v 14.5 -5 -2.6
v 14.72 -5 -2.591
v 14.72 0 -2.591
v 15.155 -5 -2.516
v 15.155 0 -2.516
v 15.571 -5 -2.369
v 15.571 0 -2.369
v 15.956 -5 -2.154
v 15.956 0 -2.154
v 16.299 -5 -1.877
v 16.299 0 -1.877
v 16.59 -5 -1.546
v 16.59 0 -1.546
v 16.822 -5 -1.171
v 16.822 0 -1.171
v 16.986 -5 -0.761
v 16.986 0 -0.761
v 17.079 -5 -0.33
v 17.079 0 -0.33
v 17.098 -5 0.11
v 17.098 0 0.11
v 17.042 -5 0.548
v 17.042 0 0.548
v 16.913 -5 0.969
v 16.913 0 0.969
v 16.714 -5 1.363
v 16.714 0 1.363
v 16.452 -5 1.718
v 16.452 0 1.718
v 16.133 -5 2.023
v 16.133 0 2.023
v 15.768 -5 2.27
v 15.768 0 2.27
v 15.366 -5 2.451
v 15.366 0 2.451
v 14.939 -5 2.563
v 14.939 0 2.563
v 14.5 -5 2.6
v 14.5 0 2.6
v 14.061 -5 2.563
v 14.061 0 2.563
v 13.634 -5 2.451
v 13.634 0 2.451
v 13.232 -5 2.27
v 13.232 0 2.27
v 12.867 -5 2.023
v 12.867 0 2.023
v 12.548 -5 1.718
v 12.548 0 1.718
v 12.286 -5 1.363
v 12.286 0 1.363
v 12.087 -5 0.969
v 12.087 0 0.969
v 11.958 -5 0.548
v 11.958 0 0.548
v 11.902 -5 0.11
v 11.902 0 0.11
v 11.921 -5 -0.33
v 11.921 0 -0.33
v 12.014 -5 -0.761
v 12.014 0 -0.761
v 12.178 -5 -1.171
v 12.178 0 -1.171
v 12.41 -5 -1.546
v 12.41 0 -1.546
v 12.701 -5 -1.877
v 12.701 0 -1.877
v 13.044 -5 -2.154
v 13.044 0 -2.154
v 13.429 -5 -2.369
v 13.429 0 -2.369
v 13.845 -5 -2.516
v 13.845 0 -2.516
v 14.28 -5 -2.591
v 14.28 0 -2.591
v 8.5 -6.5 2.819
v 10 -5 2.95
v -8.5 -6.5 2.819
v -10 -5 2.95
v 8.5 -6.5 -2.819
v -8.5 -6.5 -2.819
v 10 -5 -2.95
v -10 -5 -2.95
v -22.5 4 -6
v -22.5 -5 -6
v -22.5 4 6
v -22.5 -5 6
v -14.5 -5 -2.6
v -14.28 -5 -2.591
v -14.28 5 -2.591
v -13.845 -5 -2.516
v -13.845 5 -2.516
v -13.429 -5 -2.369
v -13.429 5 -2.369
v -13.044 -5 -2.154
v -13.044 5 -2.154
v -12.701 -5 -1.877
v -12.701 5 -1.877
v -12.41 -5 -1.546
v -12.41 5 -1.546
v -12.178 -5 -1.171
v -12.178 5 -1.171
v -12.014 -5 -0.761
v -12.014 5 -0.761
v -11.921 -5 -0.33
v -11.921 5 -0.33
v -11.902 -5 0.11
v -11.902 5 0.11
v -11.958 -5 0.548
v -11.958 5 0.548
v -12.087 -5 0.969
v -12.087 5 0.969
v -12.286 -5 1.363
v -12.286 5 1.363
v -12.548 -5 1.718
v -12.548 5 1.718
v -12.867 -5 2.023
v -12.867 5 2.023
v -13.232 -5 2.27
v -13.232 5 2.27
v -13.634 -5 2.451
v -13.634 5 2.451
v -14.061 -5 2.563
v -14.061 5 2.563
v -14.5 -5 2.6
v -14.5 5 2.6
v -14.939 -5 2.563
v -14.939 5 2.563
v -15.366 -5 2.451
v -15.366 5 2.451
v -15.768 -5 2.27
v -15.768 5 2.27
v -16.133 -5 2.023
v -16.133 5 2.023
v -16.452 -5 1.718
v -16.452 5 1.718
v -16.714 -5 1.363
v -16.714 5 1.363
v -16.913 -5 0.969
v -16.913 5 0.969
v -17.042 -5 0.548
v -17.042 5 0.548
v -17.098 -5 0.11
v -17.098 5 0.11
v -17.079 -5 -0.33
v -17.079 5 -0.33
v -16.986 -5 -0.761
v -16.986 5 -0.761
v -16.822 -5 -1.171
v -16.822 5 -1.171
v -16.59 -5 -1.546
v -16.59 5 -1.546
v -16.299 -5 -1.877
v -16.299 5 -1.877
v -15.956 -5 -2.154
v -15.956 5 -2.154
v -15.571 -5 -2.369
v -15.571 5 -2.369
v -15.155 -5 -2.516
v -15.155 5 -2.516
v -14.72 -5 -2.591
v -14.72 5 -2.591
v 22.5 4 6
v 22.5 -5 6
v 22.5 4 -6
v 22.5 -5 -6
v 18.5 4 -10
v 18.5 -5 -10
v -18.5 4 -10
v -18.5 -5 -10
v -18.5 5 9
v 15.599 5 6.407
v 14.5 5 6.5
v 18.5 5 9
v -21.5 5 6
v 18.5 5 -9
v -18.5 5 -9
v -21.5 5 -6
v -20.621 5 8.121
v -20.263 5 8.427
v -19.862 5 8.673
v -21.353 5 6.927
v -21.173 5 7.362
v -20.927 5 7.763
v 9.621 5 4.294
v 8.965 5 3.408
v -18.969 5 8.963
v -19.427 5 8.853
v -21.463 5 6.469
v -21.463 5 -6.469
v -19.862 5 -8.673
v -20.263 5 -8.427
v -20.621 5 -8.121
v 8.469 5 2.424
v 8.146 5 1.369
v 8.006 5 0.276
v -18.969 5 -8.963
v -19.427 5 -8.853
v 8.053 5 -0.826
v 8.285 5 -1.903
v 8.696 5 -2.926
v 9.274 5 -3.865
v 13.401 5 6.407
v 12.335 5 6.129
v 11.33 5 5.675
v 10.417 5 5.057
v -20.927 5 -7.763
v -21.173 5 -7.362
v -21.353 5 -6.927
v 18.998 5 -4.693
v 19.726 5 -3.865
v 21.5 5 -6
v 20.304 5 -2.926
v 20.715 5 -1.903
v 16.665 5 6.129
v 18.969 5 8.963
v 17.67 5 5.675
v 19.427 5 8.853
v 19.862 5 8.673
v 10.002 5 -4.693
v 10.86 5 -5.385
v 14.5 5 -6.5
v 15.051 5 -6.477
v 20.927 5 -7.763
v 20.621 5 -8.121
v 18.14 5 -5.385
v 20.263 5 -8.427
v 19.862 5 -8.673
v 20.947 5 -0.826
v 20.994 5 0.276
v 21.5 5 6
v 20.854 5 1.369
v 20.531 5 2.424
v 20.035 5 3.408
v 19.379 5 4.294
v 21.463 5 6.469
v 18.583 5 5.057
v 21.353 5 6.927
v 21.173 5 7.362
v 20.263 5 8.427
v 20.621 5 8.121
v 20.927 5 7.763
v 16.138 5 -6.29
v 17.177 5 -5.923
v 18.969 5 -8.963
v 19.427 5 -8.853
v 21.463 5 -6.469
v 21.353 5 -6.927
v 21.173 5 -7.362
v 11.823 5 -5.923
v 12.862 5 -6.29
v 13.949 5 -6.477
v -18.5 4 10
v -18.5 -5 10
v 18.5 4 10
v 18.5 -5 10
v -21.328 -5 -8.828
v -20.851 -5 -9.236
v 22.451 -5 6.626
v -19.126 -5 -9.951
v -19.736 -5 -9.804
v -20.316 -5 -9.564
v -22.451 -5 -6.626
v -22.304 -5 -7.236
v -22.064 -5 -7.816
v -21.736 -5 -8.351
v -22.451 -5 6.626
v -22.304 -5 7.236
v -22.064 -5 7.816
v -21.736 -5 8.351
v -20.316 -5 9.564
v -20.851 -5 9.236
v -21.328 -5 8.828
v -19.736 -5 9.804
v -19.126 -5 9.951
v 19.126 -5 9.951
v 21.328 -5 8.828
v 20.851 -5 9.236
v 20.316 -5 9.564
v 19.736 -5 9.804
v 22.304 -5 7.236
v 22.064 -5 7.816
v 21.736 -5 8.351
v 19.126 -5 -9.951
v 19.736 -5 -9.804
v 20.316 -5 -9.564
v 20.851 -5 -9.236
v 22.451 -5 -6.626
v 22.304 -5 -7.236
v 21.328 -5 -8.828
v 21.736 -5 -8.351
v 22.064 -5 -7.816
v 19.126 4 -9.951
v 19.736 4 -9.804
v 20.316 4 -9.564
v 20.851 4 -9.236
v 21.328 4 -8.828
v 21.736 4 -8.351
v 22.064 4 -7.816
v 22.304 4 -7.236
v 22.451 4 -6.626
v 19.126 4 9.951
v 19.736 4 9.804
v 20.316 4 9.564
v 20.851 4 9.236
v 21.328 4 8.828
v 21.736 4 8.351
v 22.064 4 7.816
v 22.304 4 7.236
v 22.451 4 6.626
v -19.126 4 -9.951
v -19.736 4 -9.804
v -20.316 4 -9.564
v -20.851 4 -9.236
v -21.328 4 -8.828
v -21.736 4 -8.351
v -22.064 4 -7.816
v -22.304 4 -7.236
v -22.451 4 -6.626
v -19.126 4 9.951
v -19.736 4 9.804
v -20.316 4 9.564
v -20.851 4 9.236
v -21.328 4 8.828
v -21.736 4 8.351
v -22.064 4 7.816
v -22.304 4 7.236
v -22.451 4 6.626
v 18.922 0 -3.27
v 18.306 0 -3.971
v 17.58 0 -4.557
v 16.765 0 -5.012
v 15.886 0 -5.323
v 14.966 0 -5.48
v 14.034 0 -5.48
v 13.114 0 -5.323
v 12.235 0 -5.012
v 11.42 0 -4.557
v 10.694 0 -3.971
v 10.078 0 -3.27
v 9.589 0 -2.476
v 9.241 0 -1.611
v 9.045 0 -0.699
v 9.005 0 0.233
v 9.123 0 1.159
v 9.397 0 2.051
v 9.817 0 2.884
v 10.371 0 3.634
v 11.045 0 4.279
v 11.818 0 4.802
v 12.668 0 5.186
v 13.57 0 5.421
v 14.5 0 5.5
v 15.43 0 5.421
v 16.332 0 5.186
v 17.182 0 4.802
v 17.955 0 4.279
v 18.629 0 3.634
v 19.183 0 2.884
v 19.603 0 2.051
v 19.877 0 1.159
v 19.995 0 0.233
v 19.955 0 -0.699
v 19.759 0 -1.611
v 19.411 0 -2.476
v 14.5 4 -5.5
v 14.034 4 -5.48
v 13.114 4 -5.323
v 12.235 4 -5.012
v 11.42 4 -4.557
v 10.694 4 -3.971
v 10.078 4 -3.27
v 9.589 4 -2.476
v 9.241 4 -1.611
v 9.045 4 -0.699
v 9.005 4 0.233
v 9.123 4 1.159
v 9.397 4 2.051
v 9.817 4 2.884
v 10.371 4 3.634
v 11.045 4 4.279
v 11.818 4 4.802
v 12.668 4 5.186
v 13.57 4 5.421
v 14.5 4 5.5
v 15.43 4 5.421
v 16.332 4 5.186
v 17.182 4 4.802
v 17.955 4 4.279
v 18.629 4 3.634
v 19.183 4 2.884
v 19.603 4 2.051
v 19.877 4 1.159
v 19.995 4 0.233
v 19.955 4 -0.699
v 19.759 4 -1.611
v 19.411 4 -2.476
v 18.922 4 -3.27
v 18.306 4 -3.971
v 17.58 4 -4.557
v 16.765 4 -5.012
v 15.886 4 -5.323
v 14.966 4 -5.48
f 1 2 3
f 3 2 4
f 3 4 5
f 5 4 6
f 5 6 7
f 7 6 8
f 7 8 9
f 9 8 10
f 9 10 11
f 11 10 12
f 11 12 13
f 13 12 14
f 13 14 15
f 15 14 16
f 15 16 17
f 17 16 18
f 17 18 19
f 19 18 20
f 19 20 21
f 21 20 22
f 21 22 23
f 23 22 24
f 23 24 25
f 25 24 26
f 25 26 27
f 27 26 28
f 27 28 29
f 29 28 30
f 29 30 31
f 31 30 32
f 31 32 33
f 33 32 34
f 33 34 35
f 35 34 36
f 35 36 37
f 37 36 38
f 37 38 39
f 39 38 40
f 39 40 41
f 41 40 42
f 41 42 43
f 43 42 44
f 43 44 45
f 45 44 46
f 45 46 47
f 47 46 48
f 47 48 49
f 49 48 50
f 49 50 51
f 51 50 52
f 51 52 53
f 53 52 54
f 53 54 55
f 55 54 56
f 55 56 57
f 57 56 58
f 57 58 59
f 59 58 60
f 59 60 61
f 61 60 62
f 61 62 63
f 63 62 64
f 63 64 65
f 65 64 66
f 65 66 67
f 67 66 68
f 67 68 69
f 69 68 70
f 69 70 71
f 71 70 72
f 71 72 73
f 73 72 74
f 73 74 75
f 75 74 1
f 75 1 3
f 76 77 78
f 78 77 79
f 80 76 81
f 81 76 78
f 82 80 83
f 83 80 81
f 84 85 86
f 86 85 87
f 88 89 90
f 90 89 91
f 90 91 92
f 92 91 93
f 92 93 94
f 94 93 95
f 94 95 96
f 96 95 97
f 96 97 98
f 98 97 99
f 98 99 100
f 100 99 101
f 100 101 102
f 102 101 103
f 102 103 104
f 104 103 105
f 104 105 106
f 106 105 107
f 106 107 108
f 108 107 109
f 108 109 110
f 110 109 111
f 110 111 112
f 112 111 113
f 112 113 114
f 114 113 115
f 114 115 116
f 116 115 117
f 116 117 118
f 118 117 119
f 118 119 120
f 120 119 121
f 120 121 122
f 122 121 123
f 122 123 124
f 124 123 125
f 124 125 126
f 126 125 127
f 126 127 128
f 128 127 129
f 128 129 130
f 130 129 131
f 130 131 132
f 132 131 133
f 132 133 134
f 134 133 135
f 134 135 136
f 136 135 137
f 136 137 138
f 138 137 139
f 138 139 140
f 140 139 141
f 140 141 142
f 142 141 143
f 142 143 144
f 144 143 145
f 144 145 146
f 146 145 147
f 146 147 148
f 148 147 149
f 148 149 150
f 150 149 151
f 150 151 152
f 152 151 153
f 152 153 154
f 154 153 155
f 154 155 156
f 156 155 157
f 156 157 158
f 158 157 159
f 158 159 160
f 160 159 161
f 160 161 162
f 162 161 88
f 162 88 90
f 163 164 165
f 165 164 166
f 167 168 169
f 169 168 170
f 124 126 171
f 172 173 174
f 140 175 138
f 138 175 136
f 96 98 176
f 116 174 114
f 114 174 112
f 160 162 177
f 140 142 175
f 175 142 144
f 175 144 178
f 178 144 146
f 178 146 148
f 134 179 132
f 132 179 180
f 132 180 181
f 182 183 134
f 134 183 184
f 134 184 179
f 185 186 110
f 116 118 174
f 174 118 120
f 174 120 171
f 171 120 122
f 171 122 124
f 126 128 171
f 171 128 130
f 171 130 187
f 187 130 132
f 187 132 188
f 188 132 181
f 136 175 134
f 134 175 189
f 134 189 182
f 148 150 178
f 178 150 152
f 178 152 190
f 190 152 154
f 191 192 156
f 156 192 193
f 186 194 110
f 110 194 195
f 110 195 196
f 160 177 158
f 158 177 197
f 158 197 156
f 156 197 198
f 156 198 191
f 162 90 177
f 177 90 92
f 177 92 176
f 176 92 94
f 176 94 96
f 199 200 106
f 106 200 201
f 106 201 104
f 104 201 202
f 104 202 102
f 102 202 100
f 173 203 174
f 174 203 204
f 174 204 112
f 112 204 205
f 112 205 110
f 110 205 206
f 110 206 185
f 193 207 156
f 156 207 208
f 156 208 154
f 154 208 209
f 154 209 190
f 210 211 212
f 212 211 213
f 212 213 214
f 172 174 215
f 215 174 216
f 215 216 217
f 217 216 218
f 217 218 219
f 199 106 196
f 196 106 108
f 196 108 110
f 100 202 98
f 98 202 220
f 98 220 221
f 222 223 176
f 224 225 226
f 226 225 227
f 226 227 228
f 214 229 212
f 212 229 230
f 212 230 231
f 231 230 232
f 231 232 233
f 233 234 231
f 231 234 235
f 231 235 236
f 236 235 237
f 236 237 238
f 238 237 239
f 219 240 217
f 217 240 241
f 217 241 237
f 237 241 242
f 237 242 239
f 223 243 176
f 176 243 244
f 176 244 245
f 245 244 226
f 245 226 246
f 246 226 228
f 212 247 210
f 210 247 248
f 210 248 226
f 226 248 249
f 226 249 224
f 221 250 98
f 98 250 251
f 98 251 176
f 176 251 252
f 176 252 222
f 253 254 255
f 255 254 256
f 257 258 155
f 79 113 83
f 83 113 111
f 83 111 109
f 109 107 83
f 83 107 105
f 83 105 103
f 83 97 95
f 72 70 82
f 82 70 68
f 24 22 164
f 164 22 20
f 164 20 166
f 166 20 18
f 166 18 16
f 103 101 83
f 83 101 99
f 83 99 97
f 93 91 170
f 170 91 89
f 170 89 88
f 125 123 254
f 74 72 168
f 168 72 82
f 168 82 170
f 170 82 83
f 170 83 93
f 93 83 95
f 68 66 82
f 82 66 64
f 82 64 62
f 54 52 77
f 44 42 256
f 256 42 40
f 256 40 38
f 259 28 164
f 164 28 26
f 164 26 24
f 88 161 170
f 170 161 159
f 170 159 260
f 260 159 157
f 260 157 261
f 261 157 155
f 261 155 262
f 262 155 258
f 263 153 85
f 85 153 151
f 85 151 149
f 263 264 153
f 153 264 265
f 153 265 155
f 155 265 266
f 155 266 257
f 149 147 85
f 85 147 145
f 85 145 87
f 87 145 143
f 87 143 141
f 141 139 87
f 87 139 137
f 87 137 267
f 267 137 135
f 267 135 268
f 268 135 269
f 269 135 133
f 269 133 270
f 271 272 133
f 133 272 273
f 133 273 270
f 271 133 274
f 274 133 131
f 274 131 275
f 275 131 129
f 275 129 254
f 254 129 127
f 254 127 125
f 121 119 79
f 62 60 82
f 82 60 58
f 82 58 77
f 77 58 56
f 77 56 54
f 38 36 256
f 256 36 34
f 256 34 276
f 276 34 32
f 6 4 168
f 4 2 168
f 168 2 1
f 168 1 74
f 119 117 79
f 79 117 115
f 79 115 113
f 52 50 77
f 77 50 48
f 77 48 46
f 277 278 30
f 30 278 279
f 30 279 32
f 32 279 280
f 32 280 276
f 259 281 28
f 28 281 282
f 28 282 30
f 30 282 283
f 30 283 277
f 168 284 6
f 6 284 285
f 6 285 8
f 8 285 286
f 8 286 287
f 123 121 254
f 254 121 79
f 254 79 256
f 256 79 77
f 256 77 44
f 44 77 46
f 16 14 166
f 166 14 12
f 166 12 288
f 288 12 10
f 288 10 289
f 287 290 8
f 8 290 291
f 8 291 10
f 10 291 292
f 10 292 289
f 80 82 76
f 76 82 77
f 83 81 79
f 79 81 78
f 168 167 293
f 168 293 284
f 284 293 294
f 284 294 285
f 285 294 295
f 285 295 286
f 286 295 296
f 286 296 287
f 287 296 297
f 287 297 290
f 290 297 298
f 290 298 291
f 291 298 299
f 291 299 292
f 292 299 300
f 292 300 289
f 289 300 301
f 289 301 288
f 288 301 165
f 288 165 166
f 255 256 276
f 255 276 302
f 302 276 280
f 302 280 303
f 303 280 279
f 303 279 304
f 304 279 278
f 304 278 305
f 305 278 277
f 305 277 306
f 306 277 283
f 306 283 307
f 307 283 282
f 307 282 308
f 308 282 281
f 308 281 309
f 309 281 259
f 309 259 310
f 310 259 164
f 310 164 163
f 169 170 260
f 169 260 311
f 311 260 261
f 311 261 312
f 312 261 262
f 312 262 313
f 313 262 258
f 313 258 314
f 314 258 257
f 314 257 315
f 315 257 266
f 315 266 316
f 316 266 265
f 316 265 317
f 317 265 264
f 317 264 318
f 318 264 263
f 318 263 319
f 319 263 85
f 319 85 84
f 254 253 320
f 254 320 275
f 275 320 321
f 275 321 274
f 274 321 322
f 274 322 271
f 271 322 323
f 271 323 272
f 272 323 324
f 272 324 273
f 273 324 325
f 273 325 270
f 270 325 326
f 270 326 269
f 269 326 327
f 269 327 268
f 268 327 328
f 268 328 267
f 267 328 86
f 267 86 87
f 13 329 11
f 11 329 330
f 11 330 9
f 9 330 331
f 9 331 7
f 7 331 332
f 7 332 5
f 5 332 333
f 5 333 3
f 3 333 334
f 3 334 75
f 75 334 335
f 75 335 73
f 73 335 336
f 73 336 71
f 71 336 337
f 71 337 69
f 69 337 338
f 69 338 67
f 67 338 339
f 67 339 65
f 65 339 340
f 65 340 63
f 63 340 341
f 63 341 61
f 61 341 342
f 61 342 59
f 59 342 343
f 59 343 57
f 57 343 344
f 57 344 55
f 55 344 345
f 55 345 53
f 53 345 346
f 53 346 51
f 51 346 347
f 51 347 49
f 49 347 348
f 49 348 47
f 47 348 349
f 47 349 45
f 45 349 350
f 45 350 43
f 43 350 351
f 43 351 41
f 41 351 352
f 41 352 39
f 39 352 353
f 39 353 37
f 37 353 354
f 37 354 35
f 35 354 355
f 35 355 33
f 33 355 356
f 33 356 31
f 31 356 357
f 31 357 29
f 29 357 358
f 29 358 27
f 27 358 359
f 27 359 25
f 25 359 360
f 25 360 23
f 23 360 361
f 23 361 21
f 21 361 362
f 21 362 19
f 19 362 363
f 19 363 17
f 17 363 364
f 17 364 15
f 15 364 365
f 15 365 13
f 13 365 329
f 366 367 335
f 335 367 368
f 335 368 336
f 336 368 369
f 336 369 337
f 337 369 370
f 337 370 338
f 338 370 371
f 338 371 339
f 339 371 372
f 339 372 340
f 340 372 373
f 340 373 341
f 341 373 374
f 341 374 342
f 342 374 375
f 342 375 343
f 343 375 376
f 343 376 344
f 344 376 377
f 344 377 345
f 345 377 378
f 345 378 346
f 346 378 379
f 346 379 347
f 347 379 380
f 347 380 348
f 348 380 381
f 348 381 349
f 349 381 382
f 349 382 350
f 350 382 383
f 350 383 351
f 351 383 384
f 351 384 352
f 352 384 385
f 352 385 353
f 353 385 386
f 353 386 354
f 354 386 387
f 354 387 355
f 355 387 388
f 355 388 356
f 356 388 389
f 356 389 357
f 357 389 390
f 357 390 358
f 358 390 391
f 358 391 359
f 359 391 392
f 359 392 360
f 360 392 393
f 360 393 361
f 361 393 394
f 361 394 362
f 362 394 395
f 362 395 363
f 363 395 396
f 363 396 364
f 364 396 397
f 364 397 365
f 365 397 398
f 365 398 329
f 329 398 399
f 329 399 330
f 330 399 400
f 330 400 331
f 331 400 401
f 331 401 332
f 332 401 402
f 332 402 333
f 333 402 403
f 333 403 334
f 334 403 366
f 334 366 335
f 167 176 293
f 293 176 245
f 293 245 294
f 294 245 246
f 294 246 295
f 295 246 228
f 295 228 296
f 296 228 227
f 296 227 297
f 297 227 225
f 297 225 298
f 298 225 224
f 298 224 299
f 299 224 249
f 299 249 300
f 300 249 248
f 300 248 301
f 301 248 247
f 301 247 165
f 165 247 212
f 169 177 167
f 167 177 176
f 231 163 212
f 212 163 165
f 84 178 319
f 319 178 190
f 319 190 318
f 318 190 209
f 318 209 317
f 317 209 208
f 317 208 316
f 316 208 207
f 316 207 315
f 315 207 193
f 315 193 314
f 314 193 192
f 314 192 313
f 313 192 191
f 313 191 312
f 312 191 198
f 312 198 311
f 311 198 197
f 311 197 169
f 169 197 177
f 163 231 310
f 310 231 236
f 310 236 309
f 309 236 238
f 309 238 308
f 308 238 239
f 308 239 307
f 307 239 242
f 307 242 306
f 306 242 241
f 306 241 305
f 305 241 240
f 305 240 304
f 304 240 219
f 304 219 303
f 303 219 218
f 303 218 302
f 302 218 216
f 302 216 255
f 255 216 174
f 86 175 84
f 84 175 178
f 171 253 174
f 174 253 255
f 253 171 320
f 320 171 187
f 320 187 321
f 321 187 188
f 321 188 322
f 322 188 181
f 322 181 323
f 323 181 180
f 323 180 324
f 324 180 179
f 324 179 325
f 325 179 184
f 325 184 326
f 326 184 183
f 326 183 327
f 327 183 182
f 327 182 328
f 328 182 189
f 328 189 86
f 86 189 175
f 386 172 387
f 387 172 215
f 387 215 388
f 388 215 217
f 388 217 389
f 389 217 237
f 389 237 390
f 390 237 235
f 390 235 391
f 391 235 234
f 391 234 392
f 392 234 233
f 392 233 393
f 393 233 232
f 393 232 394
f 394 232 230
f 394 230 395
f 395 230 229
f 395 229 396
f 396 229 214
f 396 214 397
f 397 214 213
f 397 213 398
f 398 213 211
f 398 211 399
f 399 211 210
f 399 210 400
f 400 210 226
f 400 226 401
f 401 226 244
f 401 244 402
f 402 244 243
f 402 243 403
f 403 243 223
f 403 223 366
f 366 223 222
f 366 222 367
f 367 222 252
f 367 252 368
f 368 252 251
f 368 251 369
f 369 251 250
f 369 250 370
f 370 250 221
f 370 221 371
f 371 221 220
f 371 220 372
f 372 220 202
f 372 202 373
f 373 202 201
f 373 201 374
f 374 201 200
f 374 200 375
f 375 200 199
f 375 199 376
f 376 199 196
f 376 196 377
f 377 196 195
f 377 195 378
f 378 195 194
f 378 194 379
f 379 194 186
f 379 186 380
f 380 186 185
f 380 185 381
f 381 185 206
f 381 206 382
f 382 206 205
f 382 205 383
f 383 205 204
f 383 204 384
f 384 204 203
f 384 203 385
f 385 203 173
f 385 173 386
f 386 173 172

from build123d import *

# Parameters (mm, degrees)
BOSS_EXTRUDE1_DEPTH = 22.5
SKETCH2_R           = 2.6
CUT_EXTRUDE1_DEPTH  = 11.5
SKETCH3_W           = 14
SKETCH3_H           = 20
CUT_EXTRUDE2_DEPTH  = 1.5
DRAFT1_ANGLE        = 45
FILLET1_R           = 4
SKETCH6_R           = 5.5
CUT_EXTRUDE3_DEPTH  = 5
CHAMFER2_SIZE       = 1


with BuildPart() as part:
    # Sketch1 → Boss-Extrude1 (new body, symmetric)
    with BuildSketch(Plane(origin=(0, 0, 0), x_dir=(0, 0, -1), z_dir=(1, 0, 0))):
        Polygon((-10, 5), (10, 5), (10, -5), (2.95, -5), (2.818767005, -6.5), (-2.818767005, -6.5), (-2.95, -5), (-10, -5), align=None)
    extrude(amount=BOSS_EXTRUDE1_DEPTH, both=True)

    # Sketch2 → Cut-Extrude1 (cut)
    with BuildSketch(Plane(origin=(0, 5, 0), x_dir=(1, 0, 0), z_dir=(0, 1, 0))):
        with Locations((-14.5, 0)):
            Circle(SKETCH2_R)
        with Locations((14.5, 0)):
            Circle(SKETCH2_R)
    extrude(amount=-CUT_EXTRUDE1_DEPTH, mode=Mode.SUBTRACT)

    # Sketch3 → Cut-Extrude2 (cut)
    with BuildSketch(Plane.XZ.offset(5)):
        with Locations((15.5, 0)):
            Rectangle(SKETCH3_W, SKETCH3_H)
        with Locations((-15.5, 0)):
            Rectangle(SKETCH3_W, SKETCH3_H)
    extrude(amount=CUT_EXTRUDE2_DEPTH, mode=Mode.SUBTRACT)

    # Draft1
    draft1_faces = [part.faces().sort_by_distance(p)[0] for p in [
        (8.5, -5.74431278, 0),
        (-8.5, -5.74431278, 0),
    ]]
    draft(draft1_faces, Plane(origin=(22.5, -6.5, -2.818767005), x_dir=(0, 0, -1), z_dir=(0, -1, 0)), DRAFT1_ANGLE)

    # Fillet1
    fillet1_edges = [part.edges().sort_by_distance(p)[0] for p in [
        (-22.5, 0, -10),
        (22.5, 0, 10),
        (22.5, 0, -10),
        (-22.5, 0, 10),
    ]]
    fillet(fillet1_edges, radius=FILLET1_R)

    # Sketch6 → Cut-Extrude3 (cut)
    with BuildSketch(Plane(origin=(0, 5, 0), x_dir=(1, 0, 0), z_dir=(0, 1, 0))):
        with Locations((14.5, 0)):
            Circle(SKETCH6_R)
    extrude(amount=-CUT_EXTRUDE3_DEPTH, mode=Mode.SUBTRACT)

    # Chamfer2
    chamfer2_edges = [part.edges().sort_by_distance(p)[0] for p in [
        (9, 5, 0),
        (22.5, 5, 0),
        (-22.5, 5, 0),
        (0, 5, 10),
        (0, 5, -10),
        (-21.328427125, 5, 8.828427125),
        (-21.328427125, 5, -8.828427125),
        (21.328427125, 5, 8.828427125),
        (21.328427125, 5, -8.828427125),
    ]]
    chamfer(chamfer2_edges, length=CHAMFER2_SIZE)


solid = part.part
